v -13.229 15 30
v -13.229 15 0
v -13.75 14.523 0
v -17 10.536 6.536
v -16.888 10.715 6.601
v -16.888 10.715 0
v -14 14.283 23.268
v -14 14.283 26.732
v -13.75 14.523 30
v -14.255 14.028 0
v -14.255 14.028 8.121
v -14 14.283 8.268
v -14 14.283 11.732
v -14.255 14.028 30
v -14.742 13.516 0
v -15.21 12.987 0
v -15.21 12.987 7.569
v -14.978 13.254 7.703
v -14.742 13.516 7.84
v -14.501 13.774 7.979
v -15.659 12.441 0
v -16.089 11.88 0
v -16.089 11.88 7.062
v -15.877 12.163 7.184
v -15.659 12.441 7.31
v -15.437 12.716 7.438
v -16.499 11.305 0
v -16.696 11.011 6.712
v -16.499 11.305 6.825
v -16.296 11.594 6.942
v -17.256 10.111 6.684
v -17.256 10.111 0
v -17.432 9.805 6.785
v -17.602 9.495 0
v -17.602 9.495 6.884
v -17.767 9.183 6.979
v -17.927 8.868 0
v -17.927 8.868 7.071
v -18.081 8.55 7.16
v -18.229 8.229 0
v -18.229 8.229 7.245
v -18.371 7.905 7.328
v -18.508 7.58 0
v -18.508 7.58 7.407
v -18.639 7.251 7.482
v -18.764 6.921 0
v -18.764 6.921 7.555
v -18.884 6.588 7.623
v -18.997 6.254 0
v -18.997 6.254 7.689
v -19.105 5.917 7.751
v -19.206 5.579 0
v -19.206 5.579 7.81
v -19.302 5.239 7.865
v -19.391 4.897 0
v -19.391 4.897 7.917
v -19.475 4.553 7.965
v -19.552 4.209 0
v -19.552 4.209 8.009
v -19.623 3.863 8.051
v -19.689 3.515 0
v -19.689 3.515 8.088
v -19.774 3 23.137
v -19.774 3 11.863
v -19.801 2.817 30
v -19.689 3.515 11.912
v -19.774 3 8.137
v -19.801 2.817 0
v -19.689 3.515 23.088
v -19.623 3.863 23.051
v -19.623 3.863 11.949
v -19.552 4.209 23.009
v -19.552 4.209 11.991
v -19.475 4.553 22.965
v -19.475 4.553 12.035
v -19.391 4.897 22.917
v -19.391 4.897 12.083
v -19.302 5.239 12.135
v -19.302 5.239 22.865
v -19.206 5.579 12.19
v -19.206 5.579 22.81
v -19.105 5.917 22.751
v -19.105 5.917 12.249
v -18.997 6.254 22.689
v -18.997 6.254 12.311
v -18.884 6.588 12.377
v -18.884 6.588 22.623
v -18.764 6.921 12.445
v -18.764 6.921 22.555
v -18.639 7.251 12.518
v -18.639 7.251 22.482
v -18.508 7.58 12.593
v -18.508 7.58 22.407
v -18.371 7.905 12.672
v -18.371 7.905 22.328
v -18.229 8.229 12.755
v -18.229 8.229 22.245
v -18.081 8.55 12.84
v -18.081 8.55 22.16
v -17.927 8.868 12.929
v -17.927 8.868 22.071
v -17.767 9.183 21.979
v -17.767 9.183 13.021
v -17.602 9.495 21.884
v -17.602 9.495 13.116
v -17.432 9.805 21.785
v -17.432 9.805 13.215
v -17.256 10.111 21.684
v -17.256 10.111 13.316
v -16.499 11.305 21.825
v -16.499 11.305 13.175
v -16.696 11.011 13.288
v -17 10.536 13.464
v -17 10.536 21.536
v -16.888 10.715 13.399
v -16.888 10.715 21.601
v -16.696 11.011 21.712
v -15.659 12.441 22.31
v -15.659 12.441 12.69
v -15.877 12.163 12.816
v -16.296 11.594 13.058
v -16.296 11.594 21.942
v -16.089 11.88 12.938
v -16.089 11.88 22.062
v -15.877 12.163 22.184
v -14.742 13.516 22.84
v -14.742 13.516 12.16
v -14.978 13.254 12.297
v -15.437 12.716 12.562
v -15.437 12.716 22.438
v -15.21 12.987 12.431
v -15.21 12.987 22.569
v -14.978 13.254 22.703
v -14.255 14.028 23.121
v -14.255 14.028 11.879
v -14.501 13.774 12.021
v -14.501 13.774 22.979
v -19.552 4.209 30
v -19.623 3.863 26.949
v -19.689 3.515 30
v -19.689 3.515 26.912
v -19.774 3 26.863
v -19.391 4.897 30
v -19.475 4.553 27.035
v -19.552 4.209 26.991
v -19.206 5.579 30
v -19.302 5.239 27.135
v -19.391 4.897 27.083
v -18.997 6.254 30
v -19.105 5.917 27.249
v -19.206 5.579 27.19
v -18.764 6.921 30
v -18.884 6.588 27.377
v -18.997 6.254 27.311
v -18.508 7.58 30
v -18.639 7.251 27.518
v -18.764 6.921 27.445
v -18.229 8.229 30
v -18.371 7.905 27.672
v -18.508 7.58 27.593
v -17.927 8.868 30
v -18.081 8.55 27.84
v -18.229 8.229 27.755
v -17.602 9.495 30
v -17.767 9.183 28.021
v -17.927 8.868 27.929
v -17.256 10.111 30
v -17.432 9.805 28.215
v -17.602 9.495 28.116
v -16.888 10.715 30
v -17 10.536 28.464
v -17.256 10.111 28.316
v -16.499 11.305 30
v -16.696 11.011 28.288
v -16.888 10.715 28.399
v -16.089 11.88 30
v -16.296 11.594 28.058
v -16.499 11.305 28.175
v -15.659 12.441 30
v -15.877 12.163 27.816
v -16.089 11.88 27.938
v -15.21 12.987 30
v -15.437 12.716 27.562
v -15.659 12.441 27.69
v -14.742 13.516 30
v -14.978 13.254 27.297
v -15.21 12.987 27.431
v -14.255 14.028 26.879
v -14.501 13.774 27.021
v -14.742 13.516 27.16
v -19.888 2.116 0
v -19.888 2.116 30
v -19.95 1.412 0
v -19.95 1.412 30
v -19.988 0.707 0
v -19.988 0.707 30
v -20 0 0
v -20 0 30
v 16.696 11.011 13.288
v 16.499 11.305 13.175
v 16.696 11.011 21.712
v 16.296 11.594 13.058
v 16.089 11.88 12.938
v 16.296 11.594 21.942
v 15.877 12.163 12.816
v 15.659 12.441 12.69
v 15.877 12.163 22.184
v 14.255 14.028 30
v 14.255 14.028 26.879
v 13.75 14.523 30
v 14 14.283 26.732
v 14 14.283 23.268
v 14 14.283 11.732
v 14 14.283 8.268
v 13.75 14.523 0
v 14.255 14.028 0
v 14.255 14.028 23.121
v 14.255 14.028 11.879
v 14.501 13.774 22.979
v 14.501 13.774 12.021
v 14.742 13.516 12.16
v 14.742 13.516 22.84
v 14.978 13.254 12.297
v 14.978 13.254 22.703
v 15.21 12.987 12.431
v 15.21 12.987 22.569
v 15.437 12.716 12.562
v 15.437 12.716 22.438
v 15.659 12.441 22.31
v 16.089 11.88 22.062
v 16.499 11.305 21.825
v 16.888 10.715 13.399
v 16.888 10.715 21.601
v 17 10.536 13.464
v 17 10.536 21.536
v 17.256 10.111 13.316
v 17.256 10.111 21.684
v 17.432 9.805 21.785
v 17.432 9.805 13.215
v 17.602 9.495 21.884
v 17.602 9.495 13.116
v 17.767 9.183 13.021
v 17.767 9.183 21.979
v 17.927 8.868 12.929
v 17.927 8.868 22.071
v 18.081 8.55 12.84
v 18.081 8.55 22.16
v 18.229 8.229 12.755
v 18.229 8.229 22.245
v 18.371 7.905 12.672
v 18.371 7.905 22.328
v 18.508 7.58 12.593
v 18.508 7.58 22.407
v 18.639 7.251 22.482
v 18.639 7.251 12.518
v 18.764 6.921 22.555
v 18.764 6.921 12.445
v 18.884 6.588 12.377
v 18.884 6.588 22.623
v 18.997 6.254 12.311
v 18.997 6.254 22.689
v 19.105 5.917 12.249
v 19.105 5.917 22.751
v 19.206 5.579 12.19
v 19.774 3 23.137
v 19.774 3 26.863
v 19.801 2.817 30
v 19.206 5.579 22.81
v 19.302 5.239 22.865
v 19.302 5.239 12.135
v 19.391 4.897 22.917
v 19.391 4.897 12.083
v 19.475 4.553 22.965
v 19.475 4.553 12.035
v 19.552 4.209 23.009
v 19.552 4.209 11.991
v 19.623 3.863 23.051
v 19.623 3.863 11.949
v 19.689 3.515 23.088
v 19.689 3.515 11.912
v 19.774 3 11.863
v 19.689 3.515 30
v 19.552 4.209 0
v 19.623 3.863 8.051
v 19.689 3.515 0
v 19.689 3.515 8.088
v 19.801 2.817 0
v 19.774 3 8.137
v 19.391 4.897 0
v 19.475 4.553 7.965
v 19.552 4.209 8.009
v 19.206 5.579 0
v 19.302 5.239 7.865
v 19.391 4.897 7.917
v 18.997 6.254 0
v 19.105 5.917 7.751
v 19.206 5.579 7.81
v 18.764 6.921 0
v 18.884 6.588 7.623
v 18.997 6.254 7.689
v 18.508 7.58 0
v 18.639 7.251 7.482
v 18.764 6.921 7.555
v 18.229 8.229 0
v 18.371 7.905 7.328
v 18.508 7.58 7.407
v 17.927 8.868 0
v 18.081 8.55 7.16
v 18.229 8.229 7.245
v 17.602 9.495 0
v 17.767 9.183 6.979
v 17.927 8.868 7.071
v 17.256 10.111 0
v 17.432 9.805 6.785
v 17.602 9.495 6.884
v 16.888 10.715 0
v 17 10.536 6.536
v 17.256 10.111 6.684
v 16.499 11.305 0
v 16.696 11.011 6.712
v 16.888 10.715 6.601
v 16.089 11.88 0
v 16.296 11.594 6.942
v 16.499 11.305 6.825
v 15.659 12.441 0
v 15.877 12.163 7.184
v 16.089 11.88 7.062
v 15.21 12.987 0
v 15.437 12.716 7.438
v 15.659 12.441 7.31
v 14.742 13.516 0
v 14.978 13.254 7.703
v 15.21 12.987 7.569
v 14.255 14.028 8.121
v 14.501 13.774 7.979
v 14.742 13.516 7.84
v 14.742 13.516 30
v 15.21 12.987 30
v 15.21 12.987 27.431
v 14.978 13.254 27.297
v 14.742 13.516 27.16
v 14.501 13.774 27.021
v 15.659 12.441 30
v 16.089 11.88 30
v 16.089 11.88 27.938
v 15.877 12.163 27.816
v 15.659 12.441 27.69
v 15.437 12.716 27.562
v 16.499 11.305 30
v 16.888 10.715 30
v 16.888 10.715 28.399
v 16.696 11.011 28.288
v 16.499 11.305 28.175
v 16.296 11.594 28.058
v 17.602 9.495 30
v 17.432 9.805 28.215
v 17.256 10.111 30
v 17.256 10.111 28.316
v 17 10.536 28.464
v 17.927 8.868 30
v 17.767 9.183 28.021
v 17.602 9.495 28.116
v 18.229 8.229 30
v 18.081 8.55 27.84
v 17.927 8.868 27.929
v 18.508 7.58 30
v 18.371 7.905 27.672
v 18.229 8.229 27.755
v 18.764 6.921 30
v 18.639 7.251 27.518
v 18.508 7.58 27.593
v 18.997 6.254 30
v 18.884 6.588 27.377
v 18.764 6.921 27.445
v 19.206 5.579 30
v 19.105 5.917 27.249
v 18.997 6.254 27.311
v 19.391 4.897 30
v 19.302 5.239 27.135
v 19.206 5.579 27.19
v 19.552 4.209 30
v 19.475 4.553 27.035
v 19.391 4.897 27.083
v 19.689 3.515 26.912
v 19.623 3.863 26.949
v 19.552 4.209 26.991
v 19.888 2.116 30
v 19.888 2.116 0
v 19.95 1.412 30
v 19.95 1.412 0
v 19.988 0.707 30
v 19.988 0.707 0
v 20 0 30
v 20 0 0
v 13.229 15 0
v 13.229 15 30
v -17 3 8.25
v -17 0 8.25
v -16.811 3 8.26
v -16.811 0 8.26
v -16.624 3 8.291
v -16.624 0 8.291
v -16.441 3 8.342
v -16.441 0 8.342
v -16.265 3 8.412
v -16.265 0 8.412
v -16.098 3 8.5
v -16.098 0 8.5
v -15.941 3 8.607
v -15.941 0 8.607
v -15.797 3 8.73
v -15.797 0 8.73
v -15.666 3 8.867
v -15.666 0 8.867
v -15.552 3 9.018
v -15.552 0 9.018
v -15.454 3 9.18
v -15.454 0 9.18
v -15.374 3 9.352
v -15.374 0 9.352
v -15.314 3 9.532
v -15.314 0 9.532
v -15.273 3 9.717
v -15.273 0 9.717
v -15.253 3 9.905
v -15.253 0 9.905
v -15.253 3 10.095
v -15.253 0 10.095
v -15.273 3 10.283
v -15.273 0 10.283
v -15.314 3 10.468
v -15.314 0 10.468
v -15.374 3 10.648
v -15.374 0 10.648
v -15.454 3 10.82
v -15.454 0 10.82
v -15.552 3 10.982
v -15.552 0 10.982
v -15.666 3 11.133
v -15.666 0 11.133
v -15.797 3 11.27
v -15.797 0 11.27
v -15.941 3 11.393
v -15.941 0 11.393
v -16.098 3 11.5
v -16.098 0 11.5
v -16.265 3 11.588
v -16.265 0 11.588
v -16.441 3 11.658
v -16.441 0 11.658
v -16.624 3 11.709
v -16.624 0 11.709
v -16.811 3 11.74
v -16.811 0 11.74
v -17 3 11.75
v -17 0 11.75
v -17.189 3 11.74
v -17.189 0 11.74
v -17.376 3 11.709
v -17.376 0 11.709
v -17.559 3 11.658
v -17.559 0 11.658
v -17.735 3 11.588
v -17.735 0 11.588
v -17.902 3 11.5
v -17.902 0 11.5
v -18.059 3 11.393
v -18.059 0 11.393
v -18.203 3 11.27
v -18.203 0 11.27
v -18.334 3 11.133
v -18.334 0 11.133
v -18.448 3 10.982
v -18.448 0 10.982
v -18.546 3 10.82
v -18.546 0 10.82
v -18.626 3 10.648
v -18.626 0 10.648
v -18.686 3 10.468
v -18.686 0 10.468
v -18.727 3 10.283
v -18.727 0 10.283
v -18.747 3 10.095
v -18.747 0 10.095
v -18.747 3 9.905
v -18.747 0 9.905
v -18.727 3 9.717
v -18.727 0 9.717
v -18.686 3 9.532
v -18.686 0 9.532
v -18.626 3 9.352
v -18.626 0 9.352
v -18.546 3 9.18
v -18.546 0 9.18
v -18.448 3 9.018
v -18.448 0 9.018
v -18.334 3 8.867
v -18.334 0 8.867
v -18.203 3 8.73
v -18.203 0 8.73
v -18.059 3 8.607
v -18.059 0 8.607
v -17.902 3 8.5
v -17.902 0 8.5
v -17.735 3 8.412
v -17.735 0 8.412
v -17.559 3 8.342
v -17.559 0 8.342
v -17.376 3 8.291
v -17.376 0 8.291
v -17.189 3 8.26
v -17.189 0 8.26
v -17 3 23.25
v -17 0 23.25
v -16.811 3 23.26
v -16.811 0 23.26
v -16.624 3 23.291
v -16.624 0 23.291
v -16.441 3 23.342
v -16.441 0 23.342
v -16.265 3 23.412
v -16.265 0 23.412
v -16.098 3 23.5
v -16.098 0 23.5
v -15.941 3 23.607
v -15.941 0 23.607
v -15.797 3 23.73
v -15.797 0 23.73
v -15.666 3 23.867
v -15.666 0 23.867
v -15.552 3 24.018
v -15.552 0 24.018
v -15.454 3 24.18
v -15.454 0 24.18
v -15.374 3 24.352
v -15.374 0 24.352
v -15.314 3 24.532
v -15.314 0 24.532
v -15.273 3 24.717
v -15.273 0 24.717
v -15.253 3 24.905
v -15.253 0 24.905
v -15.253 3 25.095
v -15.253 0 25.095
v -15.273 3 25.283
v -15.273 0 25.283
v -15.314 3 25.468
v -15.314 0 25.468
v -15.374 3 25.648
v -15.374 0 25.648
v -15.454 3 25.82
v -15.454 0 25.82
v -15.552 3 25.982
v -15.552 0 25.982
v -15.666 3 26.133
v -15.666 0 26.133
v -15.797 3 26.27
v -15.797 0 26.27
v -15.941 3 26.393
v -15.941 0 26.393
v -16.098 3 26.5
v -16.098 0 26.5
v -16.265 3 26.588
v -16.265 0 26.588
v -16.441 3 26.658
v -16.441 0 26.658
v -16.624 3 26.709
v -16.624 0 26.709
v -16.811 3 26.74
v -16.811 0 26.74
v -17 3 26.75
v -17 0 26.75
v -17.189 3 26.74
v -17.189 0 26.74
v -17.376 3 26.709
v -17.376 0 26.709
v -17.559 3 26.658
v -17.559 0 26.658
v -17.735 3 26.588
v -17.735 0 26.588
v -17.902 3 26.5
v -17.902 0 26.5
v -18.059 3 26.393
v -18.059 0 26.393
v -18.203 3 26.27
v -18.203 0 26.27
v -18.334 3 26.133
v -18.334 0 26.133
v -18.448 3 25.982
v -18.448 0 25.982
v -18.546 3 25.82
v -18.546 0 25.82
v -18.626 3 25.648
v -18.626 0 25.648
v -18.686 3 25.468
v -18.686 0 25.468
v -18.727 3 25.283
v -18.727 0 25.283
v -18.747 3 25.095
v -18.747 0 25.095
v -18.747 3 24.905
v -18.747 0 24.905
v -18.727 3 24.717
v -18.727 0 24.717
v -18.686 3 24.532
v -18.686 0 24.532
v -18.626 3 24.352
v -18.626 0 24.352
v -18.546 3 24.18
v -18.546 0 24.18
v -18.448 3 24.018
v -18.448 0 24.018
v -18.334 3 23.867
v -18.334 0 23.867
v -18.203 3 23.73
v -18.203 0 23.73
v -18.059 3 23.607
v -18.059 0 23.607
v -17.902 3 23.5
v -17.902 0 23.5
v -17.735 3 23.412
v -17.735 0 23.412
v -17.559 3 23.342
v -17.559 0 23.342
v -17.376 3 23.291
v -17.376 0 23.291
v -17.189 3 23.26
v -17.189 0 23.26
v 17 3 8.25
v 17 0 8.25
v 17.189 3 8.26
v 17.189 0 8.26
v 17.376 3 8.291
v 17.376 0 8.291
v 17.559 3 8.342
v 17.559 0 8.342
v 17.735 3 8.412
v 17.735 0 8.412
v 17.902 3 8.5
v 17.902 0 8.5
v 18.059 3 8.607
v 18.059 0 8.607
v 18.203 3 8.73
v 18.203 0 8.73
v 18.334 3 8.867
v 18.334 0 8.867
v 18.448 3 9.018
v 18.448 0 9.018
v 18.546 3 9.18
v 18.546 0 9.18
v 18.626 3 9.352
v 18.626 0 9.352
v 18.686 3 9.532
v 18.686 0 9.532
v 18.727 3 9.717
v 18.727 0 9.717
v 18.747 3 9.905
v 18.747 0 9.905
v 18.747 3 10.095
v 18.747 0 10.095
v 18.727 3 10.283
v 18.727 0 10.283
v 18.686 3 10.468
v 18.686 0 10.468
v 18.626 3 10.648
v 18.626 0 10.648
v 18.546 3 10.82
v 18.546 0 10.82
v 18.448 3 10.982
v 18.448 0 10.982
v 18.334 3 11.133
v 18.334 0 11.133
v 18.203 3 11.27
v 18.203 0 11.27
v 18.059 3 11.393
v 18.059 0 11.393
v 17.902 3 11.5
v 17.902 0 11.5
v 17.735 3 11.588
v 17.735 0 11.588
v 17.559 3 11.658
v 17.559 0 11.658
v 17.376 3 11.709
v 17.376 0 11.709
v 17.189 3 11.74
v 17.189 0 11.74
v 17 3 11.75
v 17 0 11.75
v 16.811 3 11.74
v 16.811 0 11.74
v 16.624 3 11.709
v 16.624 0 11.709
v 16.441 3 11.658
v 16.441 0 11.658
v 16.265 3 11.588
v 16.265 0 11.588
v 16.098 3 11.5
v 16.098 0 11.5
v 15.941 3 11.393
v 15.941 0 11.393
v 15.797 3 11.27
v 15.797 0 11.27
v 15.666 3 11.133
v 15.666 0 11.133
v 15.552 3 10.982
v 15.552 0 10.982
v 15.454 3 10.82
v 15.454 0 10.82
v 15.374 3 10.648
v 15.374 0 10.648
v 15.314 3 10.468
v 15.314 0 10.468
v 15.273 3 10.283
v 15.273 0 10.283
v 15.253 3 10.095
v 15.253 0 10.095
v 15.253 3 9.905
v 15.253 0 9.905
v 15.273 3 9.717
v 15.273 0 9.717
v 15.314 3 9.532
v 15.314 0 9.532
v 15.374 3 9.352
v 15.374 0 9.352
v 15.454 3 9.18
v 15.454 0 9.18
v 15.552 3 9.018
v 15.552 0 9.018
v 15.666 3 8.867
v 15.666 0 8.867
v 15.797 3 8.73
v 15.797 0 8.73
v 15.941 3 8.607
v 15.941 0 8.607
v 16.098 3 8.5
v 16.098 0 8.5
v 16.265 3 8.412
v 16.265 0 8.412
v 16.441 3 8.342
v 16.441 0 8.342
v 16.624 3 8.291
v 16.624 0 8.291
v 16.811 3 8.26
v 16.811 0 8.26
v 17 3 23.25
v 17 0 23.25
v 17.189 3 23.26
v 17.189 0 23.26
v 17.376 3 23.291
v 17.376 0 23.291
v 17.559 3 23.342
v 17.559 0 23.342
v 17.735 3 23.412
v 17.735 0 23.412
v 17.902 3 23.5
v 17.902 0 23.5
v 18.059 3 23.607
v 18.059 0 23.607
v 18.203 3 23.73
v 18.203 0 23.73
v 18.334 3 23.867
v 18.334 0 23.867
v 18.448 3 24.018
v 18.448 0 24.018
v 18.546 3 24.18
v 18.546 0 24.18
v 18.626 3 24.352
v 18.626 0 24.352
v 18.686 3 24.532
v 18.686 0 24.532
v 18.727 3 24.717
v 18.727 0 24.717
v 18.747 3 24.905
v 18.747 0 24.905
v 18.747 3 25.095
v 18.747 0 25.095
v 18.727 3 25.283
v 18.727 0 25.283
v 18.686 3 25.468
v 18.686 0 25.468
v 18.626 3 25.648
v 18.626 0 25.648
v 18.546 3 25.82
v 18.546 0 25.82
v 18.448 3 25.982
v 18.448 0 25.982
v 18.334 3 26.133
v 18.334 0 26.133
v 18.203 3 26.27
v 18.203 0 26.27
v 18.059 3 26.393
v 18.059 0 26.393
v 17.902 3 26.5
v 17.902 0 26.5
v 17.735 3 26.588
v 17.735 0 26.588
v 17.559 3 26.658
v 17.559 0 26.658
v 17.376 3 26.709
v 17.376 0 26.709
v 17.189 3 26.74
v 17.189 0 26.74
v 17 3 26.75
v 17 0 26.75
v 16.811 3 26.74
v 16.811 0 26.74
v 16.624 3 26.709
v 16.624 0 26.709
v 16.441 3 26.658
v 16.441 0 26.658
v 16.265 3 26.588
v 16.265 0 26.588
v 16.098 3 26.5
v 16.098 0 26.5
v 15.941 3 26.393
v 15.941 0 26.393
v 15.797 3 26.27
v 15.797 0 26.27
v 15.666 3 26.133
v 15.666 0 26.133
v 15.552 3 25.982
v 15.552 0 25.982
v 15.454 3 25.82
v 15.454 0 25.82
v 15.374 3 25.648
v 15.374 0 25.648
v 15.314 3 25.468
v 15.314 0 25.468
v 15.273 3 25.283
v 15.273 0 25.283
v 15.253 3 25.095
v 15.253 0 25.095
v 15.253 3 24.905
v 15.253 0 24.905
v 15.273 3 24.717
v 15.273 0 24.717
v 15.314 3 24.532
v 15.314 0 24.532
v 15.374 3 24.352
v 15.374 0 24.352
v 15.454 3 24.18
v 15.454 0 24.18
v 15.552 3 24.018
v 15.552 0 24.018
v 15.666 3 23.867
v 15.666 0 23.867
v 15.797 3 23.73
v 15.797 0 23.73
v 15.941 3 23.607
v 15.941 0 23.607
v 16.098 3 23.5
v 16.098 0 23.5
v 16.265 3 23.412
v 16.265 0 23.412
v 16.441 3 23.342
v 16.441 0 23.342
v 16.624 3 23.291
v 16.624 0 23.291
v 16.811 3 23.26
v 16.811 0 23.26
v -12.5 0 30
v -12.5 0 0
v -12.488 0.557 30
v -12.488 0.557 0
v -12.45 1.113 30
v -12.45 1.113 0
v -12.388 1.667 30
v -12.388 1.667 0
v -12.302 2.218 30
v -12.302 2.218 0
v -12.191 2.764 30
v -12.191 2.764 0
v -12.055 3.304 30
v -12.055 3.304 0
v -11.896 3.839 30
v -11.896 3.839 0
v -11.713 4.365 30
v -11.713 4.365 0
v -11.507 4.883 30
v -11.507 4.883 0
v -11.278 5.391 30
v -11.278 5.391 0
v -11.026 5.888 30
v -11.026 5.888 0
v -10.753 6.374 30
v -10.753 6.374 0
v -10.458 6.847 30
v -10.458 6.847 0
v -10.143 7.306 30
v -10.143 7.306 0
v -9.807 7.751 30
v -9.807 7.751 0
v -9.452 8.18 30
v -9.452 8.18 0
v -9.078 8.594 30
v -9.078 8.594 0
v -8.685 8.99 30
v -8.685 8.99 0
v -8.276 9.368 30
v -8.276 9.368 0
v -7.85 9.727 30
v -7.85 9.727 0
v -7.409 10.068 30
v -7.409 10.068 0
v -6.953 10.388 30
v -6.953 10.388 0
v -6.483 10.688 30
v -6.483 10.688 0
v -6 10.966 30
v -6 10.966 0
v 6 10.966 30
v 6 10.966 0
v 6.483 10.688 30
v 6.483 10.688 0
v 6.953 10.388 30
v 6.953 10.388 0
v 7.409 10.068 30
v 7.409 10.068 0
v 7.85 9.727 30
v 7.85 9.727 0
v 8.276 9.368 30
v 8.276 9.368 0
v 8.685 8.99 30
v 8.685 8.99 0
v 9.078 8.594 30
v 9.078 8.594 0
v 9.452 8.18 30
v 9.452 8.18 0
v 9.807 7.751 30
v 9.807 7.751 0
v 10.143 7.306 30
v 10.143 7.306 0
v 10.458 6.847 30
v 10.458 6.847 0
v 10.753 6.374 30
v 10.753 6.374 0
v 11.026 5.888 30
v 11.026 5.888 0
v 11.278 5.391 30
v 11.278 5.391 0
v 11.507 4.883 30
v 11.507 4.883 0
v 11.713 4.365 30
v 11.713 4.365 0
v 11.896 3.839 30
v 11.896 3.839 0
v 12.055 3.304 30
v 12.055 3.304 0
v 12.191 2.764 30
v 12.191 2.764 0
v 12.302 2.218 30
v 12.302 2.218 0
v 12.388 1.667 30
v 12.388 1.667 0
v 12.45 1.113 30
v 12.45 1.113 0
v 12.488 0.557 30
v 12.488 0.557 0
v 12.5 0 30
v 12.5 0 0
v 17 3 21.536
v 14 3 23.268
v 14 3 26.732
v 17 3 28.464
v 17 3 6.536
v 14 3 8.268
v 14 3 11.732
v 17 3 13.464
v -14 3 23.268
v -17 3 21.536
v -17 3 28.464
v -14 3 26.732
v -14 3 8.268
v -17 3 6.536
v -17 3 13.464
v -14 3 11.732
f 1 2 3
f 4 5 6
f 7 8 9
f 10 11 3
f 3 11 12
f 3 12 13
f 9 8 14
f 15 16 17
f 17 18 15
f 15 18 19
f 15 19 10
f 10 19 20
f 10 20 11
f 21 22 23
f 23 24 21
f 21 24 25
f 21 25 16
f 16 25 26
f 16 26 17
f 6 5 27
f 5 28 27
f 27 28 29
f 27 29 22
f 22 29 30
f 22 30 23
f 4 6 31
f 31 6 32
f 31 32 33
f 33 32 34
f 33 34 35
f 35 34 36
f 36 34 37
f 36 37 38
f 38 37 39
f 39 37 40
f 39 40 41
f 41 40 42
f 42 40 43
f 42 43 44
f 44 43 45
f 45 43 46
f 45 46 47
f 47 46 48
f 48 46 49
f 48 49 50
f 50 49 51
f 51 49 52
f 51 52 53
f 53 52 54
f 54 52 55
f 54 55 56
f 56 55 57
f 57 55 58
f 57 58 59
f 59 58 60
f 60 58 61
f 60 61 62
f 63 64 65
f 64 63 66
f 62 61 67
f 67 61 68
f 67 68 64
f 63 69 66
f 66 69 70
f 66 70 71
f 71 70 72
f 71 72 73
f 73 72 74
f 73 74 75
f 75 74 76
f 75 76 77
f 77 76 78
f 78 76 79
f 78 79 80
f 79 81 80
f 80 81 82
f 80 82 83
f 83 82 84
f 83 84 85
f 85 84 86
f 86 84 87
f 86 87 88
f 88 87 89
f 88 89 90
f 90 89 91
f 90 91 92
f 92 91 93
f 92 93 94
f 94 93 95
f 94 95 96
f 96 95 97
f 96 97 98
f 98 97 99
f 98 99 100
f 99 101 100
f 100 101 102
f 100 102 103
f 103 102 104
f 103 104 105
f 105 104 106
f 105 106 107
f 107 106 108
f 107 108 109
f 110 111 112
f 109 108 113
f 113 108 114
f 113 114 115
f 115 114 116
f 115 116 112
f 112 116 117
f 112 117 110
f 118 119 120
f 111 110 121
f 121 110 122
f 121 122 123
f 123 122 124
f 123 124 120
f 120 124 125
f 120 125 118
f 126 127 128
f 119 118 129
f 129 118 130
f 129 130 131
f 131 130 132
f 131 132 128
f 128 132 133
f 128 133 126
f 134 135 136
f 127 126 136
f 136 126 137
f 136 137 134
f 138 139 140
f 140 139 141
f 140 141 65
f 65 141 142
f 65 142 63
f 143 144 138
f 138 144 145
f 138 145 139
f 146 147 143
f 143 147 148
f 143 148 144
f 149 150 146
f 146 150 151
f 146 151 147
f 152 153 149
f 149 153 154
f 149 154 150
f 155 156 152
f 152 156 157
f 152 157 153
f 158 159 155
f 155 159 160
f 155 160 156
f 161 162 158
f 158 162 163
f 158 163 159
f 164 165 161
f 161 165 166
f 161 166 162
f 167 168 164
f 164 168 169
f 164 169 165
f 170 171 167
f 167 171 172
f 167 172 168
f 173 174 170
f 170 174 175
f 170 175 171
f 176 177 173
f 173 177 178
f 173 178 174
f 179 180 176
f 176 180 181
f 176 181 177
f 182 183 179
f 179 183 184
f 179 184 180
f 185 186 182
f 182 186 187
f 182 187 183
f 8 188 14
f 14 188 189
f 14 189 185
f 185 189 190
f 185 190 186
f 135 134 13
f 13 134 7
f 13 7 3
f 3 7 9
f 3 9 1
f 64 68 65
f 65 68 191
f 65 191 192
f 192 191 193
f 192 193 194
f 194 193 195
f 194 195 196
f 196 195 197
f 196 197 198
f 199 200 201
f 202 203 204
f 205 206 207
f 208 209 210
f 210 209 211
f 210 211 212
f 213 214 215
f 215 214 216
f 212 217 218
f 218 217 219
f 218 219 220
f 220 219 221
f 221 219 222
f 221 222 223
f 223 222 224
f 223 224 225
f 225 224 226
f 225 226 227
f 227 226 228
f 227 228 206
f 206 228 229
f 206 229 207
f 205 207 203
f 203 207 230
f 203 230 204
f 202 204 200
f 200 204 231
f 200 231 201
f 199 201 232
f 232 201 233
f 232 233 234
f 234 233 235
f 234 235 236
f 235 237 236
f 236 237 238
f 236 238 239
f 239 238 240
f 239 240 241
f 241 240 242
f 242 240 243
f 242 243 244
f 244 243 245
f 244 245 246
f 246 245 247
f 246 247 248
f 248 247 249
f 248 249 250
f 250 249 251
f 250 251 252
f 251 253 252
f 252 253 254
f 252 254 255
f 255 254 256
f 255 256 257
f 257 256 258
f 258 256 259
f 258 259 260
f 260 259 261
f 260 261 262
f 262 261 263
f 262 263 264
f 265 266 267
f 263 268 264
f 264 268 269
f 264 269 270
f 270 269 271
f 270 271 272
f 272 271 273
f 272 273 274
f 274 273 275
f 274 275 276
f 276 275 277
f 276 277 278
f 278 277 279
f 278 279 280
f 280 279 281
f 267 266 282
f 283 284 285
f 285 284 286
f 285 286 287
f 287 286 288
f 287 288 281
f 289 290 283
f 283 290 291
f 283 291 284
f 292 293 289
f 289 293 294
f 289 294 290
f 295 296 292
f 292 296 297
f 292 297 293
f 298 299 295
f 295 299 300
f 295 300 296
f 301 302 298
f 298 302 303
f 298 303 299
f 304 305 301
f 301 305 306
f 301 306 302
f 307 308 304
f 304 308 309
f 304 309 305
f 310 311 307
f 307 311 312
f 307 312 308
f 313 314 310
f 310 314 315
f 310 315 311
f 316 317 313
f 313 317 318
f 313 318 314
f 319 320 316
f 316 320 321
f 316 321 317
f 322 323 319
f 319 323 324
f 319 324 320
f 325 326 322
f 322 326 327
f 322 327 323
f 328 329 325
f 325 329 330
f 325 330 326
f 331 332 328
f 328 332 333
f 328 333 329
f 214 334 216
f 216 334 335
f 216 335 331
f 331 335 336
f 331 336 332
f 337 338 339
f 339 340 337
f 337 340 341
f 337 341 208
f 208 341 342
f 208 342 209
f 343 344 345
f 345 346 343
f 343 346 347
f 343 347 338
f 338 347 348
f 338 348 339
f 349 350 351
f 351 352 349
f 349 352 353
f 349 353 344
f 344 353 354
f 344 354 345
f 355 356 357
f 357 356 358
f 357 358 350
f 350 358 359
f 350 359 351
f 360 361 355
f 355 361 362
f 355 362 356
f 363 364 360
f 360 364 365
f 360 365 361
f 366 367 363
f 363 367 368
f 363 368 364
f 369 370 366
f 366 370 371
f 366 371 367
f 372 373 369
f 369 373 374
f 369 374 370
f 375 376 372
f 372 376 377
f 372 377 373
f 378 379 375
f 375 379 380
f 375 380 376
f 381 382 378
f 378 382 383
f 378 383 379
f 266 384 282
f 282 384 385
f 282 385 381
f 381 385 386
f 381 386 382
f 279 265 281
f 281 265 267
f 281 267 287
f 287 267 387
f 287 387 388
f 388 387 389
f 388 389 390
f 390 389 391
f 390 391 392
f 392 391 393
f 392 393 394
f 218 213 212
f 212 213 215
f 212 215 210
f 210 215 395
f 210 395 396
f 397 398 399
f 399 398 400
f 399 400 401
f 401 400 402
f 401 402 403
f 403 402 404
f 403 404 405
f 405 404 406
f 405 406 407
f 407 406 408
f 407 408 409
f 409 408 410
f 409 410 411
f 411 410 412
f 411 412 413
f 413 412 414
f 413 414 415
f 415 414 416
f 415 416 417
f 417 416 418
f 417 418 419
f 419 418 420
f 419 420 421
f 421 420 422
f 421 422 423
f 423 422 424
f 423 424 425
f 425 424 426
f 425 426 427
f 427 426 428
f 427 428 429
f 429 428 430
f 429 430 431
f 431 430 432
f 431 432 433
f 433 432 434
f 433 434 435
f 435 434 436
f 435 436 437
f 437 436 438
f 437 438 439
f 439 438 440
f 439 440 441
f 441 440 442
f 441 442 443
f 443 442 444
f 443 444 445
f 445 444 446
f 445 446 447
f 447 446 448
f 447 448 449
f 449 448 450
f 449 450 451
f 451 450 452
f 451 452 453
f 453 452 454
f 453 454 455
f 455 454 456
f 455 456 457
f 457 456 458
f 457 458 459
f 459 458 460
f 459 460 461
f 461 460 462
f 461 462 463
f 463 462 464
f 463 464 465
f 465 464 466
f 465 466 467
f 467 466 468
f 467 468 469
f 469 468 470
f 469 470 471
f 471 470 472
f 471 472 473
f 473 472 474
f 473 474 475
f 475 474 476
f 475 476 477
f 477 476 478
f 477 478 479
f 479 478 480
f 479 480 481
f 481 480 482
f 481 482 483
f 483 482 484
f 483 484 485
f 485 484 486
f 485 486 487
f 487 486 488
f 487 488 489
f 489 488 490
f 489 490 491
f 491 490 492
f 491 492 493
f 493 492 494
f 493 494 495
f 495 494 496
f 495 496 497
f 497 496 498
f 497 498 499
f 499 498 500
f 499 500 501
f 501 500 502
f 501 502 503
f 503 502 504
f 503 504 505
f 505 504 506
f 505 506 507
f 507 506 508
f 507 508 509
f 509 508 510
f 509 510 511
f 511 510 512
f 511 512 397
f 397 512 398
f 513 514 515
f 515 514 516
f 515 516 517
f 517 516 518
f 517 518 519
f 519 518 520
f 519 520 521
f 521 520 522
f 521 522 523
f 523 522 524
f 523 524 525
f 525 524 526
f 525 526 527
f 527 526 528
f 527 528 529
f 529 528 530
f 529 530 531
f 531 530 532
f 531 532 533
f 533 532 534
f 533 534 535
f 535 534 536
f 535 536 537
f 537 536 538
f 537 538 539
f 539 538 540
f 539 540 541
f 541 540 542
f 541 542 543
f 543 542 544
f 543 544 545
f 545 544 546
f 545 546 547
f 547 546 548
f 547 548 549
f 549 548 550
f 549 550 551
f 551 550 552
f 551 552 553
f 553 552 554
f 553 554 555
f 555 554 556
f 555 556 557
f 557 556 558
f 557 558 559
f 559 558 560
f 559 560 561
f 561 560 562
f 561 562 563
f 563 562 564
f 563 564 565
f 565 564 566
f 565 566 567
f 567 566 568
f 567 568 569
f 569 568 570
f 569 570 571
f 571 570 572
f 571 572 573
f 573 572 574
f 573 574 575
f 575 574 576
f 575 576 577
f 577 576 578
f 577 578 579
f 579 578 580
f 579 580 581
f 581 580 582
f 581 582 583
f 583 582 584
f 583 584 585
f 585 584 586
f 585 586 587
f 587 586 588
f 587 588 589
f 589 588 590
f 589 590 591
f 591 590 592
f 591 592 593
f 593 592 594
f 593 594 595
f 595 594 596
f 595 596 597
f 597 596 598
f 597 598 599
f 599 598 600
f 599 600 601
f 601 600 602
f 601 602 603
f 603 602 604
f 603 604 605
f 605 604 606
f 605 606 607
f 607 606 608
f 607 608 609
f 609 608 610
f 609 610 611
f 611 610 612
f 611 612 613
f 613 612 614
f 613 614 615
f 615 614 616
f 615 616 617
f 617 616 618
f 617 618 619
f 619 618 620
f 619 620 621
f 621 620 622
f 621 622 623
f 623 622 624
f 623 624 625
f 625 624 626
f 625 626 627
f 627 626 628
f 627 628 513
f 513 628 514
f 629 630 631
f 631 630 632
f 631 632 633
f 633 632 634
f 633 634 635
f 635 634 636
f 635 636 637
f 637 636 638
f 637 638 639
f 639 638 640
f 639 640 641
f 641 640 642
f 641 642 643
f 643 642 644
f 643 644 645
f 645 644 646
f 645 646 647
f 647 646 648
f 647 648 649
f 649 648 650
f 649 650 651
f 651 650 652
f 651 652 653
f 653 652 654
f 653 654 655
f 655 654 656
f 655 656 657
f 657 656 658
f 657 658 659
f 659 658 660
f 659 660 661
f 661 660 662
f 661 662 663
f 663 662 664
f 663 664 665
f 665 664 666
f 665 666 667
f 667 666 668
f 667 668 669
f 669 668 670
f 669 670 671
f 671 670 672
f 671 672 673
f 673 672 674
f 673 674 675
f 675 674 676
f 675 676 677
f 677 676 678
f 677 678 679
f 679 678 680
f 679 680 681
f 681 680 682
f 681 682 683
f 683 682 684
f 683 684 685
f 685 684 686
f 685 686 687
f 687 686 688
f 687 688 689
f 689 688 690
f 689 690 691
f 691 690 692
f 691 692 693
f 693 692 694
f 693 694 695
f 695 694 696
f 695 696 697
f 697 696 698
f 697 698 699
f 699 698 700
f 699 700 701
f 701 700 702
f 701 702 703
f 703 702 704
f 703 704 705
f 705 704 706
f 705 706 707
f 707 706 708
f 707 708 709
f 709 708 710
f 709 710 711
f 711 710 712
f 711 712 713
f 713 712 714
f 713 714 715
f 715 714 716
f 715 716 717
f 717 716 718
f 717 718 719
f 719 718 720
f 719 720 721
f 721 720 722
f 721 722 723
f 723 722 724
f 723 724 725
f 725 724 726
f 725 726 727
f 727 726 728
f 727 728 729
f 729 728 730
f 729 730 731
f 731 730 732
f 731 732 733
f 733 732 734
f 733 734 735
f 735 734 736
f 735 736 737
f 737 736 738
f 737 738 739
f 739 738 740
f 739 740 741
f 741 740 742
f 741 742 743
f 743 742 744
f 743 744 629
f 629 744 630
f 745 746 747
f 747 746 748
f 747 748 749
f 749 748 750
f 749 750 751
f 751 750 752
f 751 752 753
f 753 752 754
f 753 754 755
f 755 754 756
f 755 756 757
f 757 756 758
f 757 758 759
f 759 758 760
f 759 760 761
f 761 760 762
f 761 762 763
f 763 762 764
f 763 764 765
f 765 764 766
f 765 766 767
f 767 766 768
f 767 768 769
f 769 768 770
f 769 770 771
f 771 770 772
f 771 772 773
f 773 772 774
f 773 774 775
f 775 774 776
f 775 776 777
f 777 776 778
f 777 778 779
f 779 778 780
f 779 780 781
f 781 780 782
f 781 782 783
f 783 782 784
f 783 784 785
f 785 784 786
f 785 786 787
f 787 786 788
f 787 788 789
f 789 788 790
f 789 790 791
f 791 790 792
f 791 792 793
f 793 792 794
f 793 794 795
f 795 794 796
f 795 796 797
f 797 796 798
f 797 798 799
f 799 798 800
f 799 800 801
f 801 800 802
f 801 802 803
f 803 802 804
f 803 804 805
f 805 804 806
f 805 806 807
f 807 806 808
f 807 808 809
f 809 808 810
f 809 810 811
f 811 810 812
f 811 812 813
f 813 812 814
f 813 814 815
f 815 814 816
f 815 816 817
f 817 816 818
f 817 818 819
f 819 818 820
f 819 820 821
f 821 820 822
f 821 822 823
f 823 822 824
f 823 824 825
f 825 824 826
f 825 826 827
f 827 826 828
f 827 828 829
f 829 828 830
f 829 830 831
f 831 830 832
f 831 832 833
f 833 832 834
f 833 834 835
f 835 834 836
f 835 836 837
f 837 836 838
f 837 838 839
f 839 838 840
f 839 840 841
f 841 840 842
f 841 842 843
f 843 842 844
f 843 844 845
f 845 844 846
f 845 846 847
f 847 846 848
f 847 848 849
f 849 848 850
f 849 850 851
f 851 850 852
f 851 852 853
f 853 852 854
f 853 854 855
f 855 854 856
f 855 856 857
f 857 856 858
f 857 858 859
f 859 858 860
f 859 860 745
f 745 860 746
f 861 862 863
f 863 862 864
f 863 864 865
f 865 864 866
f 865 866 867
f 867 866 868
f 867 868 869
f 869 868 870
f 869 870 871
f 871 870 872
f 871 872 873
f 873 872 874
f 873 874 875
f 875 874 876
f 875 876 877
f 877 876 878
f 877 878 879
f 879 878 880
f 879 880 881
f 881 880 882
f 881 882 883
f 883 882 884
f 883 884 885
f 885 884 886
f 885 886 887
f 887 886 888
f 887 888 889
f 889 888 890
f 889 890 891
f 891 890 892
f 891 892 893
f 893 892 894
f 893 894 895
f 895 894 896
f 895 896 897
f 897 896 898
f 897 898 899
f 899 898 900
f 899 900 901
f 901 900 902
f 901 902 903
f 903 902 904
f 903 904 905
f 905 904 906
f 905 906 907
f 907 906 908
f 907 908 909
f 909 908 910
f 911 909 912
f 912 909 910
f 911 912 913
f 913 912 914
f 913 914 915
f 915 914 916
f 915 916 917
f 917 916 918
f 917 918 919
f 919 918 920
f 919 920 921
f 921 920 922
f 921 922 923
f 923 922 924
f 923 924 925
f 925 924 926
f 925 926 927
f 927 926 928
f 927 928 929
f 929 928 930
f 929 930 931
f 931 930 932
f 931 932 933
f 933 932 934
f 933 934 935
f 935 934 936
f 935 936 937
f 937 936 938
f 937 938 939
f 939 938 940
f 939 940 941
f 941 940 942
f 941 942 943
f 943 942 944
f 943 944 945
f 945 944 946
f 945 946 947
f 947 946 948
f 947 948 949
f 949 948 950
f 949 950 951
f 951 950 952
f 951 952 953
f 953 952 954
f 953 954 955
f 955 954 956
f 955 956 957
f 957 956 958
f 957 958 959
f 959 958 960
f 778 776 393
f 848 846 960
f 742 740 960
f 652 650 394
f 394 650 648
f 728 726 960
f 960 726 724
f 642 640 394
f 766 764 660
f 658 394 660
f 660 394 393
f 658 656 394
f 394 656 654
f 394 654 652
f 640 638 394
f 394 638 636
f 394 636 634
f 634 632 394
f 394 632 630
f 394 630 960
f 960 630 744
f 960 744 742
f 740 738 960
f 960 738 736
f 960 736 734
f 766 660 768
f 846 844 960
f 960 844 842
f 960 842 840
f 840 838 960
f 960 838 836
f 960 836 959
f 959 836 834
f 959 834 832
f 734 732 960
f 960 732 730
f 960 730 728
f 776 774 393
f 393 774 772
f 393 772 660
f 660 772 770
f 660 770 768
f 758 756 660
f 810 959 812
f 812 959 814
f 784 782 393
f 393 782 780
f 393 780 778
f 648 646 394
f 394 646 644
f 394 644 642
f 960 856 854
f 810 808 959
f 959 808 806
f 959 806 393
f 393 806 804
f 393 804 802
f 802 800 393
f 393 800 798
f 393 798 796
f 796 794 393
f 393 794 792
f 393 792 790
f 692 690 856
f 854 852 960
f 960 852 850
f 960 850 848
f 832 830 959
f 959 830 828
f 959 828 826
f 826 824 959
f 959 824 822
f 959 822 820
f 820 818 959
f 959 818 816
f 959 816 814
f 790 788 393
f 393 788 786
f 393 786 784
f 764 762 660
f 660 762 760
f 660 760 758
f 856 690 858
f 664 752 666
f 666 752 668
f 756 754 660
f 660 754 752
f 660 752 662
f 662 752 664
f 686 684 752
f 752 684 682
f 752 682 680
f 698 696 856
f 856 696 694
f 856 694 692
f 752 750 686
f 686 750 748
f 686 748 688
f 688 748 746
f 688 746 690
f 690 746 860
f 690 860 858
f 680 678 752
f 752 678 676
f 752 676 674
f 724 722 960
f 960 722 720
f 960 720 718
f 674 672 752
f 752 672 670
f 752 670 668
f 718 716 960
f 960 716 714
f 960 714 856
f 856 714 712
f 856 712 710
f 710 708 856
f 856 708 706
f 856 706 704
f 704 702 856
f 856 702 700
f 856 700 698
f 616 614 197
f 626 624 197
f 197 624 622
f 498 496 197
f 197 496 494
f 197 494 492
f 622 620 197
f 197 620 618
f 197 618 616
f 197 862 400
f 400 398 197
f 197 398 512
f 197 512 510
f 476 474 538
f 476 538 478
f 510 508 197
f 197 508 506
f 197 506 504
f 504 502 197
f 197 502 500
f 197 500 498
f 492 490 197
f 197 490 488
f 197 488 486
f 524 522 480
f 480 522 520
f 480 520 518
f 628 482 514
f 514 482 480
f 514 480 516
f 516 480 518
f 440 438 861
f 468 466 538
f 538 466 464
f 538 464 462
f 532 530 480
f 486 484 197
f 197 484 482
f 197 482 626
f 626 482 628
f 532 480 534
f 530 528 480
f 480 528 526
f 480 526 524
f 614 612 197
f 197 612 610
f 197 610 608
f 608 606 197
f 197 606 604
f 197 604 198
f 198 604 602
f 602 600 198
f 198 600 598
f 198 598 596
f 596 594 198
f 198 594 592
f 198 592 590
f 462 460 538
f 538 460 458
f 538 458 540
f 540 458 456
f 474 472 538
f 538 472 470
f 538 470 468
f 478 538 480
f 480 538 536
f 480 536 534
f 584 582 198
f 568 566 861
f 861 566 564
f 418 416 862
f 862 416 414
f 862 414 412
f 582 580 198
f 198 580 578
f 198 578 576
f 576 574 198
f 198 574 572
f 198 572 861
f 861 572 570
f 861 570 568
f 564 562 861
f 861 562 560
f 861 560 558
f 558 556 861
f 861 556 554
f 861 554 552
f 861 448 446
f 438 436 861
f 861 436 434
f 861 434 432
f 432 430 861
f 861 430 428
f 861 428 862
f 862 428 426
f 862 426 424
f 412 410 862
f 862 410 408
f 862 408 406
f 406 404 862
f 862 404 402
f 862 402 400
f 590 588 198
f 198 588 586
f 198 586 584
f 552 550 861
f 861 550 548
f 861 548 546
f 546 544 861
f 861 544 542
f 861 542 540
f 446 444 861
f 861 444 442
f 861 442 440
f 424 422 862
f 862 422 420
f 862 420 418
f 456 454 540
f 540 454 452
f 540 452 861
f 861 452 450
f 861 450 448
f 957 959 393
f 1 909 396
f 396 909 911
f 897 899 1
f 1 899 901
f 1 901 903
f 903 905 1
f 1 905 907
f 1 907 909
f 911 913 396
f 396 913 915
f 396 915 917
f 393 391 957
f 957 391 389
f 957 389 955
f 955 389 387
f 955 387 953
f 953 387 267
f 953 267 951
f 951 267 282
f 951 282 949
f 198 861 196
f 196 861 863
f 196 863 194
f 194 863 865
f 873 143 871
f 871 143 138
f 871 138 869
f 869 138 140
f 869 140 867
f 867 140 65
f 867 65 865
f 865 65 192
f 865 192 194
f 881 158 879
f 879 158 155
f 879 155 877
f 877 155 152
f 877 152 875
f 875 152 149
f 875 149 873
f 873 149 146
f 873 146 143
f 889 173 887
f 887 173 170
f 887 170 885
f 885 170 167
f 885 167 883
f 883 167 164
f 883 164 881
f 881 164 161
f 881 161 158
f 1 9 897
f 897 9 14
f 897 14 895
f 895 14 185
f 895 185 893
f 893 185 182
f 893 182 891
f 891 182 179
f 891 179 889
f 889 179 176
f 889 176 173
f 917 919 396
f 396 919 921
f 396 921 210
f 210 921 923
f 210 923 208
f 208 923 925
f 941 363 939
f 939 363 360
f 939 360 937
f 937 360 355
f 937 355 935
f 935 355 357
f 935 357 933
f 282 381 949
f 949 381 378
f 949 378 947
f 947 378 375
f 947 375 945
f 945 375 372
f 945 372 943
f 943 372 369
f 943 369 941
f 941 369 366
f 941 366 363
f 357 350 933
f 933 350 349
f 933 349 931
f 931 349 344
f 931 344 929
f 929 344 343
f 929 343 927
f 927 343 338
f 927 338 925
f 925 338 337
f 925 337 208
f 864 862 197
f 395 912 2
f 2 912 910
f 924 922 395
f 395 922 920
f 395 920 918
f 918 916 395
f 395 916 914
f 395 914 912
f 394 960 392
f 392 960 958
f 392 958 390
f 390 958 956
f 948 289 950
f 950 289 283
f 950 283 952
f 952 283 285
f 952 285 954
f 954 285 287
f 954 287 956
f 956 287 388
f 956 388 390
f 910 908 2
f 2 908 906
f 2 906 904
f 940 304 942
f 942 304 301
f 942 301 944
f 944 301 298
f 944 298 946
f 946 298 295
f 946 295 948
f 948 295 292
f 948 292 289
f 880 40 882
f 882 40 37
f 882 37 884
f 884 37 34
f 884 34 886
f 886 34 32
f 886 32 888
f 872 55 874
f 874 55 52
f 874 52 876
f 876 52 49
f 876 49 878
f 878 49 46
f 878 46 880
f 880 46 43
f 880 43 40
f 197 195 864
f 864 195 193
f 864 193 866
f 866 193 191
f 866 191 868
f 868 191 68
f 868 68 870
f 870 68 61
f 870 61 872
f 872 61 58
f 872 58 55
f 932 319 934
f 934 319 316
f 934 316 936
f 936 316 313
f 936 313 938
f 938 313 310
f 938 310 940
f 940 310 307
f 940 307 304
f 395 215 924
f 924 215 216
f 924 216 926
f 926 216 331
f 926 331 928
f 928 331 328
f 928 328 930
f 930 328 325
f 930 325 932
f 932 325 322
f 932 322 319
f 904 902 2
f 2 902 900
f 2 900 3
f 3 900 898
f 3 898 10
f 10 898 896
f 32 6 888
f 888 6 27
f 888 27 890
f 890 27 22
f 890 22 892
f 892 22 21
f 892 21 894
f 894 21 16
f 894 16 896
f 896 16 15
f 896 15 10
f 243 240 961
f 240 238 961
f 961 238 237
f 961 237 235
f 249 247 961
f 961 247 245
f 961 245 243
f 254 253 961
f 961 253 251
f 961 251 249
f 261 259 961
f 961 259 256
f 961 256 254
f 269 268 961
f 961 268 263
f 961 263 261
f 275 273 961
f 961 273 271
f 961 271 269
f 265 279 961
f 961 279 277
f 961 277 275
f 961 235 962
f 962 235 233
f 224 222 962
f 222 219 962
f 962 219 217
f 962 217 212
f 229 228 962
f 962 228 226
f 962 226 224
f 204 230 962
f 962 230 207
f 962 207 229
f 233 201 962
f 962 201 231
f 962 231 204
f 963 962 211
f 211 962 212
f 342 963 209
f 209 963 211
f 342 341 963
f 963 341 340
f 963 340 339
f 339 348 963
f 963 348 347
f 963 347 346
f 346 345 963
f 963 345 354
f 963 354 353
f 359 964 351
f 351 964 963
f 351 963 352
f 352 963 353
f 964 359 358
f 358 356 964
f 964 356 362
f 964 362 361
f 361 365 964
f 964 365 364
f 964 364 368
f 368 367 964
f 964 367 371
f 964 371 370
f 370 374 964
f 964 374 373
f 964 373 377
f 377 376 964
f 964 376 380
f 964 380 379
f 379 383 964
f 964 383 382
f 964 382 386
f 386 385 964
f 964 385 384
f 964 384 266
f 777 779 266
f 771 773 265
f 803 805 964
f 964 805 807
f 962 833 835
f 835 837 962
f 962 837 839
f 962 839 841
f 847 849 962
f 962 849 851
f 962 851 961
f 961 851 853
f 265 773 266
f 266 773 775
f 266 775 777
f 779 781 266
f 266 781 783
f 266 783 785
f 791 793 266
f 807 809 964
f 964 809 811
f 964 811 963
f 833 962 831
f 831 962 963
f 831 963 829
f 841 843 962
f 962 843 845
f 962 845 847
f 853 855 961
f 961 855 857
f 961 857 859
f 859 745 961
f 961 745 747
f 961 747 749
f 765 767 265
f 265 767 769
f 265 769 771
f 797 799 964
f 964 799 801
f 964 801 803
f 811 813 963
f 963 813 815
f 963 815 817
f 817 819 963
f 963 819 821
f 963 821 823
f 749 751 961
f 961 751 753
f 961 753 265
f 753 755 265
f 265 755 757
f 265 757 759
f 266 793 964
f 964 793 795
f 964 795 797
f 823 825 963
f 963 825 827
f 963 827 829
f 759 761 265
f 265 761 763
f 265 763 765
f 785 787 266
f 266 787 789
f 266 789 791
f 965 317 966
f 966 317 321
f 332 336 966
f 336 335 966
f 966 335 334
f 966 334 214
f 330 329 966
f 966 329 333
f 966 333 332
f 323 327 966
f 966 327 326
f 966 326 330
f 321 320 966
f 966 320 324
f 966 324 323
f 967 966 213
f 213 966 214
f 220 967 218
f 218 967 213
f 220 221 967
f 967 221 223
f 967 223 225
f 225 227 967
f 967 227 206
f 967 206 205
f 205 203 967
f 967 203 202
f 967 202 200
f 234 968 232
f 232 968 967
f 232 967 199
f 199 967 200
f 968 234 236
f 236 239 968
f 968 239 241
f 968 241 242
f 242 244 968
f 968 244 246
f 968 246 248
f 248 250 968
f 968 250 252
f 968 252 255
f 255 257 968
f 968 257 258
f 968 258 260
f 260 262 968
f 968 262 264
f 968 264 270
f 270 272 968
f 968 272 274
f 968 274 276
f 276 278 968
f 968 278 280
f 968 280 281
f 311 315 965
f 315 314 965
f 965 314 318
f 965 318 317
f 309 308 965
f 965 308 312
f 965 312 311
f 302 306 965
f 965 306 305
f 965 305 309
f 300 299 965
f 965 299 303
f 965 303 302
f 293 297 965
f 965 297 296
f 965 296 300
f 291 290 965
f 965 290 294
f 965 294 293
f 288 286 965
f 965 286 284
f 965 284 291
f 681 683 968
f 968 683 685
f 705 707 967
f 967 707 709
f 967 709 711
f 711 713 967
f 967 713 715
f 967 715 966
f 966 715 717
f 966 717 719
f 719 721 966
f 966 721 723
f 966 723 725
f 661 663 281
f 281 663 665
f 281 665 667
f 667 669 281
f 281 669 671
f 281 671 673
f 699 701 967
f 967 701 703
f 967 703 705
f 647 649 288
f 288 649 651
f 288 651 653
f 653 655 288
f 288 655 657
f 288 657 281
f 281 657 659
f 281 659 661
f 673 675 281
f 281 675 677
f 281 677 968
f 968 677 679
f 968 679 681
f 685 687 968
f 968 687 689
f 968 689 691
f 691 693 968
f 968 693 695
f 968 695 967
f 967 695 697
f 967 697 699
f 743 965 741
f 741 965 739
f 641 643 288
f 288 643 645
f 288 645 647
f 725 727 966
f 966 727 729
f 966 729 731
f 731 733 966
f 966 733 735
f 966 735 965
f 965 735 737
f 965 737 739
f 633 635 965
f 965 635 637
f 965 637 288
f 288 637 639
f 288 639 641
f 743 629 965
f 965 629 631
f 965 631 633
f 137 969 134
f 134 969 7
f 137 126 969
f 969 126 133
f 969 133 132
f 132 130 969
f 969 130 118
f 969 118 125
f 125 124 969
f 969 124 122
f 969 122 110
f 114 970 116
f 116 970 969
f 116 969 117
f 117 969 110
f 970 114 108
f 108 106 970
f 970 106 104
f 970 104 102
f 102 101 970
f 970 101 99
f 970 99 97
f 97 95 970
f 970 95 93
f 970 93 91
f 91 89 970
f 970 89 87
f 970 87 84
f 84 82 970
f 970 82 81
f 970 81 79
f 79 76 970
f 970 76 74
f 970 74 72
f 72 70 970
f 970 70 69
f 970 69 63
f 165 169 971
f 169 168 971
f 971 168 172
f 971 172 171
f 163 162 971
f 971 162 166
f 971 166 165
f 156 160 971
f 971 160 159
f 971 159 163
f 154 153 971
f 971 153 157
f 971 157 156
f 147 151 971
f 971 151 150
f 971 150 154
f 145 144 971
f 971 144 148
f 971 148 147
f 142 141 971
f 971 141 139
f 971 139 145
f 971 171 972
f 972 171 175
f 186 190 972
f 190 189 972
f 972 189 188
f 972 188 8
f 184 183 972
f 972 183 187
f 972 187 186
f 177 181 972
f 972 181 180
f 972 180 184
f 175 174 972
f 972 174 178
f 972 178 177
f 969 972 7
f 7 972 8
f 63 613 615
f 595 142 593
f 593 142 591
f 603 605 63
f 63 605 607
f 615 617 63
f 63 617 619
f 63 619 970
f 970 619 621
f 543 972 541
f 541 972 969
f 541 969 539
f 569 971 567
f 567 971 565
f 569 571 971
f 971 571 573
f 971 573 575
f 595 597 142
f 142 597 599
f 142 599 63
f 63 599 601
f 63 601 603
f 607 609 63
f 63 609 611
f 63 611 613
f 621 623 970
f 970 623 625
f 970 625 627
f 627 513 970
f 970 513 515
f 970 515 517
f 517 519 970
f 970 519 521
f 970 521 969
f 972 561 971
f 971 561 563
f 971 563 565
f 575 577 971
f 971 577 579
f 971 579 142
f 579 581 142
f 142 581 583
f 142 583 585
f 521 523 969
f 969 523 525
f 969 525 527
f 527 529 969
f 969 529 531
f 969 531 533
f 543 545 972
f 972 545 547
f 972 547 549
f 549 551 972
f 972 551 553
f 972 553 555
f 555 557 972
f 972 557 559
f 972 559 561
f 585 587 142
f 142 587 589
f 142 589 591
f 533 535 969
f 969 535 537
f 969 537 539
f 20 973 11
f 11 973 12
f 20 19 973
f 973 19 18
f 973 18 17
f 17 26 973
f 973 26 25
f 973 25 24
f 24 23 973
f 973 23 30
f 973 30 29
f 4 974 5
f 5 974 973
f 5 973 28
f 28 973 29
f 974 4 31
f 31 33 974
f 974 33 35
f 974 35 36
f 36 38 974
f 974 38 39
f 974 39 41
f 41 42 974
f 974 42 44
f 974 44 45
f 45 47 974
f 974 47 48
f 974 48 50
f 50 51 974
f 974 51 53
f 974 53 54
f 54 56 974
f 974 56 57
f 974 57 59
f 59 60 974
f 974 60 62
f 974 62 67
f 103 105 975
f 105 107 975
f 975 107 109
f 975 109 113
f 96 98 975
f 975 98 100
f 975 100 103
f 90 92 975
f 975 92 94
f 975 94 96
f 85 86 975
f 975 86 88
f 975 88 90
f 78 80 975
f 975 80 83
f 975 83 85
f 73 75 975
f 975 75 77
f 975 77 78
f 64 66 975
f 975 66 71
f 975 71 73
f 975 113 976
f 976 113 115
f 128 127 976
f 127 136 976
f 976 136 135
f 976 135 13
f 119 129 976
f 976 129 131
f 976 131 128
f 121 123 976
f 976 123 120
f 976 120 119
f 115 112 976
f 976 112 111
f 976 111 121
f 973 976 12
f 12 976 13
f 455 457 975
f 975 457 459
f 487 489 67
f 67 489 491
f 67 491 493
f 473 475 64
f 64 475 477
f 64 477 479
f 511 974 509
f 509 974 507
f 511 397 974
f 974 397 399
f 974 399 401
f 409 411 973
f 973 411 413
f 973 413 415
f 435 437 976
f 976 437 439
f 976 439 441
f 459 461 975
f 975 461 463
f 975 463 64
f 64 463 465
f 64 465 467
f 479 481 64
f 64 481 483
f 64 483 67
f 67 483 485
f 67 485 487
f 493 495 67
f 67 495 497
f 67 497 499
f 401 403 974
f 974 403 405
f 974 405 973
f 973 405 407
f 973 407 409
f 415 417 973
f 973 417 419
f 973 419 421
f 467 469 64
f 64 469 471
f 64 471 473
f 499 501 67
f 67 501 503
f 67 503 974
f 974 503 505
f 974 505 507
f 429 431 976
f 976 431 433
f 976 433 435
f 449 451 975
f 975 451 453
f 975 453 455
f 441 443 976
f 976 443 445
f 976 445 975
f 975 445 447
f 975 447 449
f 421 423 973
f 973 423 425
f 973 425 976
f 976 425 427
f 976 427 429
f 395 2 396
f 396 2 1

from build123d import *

# Parameters (mm, degrees)
BOSS_EXTRUDE1_DEPTH = 30
SKETCH2_R           = 1.75
CUT_EXTRUDE2_DEPTH  = 42.231056256
CUT_EXTRUDE3_DEPTH  = 40.862263024
SKETCH5_W           = 33.611871568
SKETCH5_H           = 10
CUT_EXTRUDE4_DEPTH  = 42.231056256


with BuildPart() as part:
    # Sketch1 → Boss-Extrude1 (new body)
    with BuildSketch(Plane.XY):
        with BuildLine():
            Line((-20, 0), (-12.5, 0))
            ThreePointArc((-12.5, 0), (-10.752906584, 6.373774392), (-6, 10.9658561))
            Line((-6, 10.9658561), (6, 10.9658561))
            ThreePointArc((6, 10.9658561), (10.752906584, 6.373774392), (12.5, 0))
            Line((12.5, 0), (20, 0))
            ThreePointArc((20, 0), (0, 20), (-20, 0))
        make_face()
    extrude(amount=BOSS_EXTRUDE1_DEPTH)

    # Sketch2 → Cut-Extrude2 (cut, through all)
    with BuildSketch(Plane(origin=(0, 0, 0), x_dir=(1, 0, 0), z_dir=(0, 1, 0))):
        with Locations(Location((-17, -10, 0), (0, 0, 90))):
            Circle(SKETCH2_R)
        with Locations(Location((17, -10, 0), (0, 0, 90))):
            Circle(SKETCH2_R)
        with Locations(Location((17, -25, 0), (0, 0, 90))):
            Circle(SKETCH2_R)
        with Locations(Location((-17, -25, 0), (0, 0, 90))):
            Circle(SKETCH2_R)
    extrude(amount=CUT_EXTRUDE2_DEPTH, mode=Mode.SUBTRACT)

    # Sketch4 → Cut-Extrude3 (cut, through all)
    with BuildSketch(Plane(origin=(0, 3, 0), x_dir=(1, 0, 0), z_dir=(0, 1, 0))):
        Polygon((-17, -6.535898385), (-20, -8.267949192), (-20, -11.732050808), (-17, -13.464101615), (-14, -11.732050808), (-14, -8.267949192), align=None)
        Polygon((-17, -21.535898385), (-20, -23.267949192), (-20, -26.732050808), (-17, -28.464101615), (-14, -26.732050808), (-14, -23.267949192), align=None)
        Polygon((17, -21.535898385), (14, -23.267949192), (14, -26.732050808), (17, -28.464101615), (20, -26.732050808), (20, -23.267949192), align=None)
        Polygon((14, -8.267949192), (14, -11.732050808), (17, -13.464101615), (20, -11.732050808), (20, -8.267949192), (17, -6.535898385), align=None)
    extrude(amount=CUT_EXTRUDE3_DEPTH, mode=Mode.SUBTRACT)

    # Sketch5 → Cut-Extrude4 (cut, through all)
    with BuildSketch(Plane.XY.offset(30)):
        with Locations((0, 20)):
            Rectangle(SKETCH5_W, SKETCH5_H)
    extrude(amount=-CUT_EXTRUDE4_DEPTH, mode=Mode.SUBTRACT)


solid = part.part
